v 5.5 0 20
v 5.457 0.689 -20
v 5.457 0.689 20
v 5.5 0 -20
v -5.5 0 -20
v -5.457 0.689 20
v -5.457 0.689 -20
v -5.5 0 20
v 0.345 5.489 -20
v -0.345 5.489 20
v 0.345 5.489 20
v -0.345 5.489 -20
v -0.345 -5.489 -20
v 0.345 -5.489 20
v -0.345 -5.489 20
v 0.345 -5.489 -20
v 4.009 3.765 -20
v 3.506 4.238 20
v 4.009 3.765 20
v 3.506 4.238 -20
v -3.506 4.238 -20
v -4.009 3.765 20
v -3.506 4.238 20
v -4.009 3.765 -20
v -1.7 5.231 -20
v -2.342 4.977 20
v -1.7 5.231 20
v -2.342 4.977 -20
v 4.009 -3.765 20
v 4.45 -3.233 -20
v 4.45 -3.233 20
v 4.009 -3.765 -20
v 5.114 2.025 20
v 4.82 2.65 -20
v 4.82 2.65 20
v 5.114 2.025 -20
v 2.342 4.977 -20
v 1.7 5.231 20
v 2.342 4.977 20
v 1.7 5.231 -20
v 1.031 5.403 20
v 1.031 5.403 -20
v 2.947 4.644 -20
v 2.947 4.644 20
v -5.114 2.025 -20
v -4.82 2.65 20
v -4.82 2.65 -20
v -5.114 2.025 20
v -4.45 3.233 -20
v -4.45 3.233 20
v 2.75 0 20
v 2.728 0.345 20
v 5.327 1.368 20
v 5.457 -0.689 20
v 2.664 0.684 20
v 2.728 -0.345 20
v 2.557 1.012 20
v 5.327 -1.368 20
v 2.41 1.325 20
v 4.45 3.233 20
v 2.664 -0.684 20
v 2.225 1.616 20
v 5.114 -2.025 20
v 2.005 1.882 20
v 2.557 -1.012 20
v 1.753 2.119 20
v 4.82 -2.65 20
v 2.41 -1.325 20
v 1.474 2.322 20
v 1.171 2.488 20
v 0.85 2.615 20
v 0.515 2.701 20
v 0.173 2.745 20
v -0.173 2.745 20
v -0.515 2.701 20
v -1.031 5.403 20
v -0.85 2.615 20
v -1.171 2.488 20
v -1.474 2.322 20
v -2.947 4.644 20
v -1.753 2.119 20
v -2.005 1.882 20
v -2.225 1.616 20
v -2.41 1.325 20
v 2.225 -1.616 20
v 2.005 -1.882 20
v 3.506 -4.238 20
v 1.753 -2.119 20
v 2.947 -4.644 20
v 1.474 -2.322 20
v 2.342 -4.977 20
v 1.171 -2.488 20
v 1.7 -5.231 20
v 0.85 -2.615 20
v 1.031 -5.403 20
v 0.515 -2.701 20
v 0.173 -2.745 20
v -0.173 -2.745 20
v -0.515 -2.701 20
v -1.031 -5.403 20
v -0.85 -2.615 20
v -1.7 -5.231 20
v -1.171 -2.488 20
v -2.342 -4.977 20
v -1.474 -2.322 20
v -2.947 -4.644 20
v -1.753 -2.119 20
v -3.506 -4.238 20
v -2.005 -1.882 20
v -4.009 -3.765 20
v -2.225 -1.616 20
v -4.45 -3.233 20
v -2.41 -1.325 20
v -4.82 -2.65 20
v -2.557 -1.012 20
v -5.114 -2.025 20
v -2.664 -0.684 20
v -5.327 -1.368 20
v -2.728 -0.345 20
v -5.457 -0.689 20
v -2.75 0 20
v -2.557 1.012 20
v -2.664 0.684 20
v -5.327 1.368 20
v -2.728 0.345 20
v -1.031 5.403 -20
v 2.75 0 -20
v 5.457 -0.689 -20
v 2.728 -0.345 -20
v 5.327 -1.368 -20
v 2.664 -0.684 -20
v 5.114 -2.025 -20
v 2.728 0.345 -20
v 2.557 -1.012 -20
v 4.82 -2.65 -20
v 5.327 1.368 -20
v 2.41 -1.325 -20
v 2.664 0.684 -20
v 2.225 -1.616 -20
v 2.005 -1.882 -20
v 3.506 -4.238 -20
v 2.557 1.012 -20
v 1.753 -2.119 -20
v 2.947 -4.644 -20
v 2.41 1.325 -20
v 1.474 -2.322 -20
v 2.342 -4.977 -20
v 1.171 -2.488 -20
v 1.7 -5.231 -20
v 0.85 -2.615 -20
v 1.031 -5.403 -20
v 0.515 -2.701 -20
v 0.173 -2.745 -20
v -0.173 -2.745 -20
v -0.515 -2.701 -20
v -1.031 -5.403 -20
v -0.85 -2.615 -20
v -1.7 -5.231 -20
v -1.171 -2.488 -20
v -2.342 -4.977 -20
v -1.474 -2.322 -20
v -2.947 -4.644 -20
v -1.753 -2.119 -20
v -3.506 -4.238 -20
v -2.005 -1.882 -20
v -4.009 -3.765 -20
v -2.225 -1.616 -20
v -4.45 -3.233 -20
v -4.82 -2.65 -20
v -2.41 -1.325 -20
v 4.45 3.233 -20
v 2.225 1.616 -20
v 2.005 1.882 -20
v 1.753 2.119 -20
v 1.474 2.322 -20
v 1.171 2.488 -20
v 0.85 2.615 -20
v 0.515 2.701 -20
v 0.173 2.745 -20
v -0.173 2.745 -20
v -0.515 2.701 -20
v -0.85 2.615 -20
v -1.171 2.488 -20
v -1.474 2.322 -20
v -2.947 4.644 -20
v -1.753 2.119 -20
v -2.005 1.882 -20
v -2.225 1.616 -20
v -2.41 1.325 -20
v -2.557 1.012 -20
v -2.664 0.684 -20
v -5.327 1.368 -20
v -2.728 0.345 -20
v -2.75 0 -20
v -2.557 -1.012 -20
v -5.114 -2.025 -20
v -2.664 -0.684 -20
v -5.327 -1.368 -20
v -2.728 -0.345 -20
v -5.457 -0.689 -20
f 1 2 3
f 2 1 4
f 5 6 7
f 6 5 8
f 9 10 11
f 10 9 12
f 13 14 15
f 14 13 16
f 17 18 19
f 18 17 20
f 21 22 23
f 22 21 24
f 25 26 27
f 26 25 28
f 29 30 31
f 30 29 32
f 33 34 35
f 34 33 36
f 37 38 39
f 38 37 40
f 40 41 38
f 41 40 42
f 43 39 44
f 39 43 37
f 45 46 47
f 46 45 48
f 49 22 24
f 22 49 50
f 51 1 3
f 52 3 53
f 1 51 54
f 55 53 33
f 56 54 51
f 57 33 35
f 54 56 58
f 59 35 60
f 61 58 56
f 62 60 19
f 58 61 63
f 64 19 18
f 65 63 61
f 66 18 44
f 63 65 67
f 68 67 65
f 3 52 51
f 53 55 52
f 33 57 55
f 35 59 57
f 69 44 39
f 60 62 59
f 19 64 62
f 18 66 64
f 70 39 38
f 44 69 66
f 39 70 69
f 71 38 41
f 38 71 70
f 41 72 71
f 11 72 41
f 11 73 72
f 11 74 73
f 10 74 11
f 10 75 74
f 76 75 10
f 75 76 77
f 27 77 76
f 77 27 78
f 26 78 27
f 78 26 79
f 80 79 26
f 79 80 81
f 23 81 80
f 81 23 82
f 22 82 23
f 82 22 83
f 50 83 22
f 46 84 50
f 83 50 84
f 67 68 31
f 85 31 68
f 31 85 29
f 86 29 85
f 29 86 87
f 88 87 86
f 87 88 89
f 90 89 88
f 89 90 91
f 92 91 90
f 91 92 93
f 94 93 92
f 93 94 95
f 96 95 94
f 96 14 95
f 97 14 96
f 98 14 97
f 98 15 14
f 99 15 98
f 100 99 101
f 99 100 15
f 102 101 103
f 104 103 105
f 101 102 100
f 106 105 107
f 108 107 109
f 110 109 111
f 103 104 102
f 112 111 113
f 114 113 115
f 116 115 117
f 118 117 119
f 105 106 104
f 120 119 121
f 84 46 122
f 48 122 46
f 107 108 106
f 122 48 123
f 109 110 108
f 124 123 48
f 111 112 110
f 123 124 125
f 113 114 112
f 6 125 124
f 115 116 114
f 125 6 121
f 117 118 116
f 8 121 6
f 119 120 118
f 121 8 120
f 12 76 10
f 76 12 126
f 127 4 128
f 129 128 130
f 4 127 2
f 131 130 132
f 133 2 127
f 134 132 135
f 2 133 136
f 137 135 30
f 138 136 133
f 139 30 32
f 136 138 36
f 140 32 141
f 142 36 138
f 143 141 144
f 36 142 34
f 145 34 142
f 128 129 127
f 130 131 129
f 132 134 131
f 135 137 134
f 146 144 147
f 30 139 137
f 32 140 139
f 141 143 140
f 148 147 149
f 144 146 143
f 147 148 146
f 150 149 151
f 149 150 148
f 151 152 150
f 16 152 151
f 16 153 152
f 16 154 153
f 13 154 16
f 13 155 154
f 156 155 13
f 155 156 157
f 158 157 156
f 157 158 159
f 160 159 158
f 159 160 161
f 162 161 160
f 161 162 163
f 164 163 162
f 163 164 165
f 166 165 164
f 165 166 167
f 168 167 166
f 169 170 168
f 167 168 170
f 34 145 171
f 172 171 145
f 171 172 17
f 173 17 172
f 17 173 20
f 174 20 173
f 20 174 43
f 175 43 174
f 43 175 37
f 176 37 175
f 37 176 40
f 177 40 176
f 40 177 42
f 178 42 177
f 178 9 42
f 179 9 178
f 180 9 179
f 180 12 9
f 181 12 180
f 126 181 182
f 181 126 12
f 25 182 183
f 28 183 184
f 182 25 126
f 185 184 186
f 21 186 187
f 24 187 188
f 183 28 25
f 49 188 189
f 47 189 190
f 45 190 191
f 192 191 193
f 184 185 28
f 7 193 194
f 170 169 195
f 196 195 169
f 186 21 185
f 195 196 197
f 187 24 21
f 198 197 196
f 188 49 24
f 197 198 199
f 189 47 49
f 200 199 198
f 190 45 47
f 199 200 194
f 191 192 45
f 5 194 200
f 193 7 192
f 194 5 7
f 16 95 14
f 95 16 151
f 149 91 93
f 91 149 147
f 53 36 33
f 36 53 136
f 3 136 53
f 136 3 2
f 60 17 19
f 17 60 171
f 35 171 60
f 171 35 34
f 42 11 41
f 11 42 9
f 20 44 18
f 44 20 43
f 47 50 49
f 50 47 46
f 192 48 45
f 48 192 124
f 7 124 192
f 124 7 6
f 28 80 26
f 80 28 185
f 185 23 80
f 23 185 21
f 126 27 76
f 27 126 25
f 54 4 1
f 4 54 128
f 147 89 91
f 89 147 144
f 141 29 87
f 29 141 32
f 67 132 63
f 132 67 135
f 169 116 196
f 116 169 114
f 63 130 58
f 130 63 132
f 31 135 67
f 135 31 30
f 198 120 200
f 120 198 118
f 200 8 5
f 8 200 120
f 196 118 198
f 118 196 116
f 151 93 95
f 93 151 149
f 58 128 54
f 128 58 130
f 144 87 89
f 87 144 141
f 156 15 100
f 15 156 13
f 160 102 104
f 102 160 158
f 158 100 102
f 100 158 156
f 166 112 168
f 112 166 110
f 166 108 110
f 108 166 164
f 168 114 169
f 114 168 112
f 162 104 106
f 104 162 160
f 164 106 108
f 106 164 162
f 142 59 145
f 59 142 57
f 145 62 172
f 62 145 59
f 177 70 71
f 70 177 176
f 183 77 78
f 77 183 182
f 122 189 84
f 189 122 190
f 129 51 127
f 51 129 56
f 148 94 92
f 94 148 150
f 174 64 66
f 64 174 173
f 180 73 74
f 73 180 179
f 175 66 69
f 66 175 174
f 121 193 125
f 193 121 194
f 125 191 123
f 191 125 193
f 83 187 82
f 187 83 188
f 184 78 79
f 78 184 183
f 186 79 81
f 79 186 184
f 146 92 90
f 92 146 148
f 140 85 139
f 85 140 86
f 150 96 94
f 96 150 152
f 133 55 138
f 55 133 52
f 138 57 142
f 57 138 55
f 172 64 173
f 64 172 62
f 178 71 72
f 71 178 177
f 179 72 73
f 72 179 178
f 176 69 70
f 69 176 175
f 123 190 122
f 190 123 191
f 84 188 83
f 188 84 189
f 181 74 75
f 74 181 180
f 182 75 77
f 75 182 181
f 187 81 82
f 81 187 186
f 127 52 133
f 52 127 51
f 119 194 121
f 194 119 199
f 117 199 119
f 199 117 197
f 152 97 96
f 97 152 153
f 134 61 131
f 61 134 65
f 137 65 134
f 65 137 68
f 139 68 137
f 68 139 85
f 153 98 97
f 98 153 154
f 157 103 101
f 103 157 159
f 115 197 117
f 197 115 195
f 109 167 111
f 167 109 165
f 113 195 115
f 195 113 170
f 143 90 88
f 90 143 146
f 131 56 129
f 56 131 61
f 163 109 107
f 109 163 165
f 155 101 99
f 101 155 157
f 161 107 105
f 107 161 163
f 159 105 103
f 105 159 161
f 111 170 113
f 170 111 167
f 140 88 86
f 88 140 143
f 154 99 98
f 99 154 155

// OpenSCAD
$fn = 50;


difference() {
	union() {
		translate(v = [0, 0, -20.0000000000]) {
			cylinder(h = 40, r = 5.5000000000);
		}
	}
	union() {
		translate(v = [0, 0, -100.0000000000]) {
			cylinder(h = 200, r = 2.7500000000);
		}
	}
}
